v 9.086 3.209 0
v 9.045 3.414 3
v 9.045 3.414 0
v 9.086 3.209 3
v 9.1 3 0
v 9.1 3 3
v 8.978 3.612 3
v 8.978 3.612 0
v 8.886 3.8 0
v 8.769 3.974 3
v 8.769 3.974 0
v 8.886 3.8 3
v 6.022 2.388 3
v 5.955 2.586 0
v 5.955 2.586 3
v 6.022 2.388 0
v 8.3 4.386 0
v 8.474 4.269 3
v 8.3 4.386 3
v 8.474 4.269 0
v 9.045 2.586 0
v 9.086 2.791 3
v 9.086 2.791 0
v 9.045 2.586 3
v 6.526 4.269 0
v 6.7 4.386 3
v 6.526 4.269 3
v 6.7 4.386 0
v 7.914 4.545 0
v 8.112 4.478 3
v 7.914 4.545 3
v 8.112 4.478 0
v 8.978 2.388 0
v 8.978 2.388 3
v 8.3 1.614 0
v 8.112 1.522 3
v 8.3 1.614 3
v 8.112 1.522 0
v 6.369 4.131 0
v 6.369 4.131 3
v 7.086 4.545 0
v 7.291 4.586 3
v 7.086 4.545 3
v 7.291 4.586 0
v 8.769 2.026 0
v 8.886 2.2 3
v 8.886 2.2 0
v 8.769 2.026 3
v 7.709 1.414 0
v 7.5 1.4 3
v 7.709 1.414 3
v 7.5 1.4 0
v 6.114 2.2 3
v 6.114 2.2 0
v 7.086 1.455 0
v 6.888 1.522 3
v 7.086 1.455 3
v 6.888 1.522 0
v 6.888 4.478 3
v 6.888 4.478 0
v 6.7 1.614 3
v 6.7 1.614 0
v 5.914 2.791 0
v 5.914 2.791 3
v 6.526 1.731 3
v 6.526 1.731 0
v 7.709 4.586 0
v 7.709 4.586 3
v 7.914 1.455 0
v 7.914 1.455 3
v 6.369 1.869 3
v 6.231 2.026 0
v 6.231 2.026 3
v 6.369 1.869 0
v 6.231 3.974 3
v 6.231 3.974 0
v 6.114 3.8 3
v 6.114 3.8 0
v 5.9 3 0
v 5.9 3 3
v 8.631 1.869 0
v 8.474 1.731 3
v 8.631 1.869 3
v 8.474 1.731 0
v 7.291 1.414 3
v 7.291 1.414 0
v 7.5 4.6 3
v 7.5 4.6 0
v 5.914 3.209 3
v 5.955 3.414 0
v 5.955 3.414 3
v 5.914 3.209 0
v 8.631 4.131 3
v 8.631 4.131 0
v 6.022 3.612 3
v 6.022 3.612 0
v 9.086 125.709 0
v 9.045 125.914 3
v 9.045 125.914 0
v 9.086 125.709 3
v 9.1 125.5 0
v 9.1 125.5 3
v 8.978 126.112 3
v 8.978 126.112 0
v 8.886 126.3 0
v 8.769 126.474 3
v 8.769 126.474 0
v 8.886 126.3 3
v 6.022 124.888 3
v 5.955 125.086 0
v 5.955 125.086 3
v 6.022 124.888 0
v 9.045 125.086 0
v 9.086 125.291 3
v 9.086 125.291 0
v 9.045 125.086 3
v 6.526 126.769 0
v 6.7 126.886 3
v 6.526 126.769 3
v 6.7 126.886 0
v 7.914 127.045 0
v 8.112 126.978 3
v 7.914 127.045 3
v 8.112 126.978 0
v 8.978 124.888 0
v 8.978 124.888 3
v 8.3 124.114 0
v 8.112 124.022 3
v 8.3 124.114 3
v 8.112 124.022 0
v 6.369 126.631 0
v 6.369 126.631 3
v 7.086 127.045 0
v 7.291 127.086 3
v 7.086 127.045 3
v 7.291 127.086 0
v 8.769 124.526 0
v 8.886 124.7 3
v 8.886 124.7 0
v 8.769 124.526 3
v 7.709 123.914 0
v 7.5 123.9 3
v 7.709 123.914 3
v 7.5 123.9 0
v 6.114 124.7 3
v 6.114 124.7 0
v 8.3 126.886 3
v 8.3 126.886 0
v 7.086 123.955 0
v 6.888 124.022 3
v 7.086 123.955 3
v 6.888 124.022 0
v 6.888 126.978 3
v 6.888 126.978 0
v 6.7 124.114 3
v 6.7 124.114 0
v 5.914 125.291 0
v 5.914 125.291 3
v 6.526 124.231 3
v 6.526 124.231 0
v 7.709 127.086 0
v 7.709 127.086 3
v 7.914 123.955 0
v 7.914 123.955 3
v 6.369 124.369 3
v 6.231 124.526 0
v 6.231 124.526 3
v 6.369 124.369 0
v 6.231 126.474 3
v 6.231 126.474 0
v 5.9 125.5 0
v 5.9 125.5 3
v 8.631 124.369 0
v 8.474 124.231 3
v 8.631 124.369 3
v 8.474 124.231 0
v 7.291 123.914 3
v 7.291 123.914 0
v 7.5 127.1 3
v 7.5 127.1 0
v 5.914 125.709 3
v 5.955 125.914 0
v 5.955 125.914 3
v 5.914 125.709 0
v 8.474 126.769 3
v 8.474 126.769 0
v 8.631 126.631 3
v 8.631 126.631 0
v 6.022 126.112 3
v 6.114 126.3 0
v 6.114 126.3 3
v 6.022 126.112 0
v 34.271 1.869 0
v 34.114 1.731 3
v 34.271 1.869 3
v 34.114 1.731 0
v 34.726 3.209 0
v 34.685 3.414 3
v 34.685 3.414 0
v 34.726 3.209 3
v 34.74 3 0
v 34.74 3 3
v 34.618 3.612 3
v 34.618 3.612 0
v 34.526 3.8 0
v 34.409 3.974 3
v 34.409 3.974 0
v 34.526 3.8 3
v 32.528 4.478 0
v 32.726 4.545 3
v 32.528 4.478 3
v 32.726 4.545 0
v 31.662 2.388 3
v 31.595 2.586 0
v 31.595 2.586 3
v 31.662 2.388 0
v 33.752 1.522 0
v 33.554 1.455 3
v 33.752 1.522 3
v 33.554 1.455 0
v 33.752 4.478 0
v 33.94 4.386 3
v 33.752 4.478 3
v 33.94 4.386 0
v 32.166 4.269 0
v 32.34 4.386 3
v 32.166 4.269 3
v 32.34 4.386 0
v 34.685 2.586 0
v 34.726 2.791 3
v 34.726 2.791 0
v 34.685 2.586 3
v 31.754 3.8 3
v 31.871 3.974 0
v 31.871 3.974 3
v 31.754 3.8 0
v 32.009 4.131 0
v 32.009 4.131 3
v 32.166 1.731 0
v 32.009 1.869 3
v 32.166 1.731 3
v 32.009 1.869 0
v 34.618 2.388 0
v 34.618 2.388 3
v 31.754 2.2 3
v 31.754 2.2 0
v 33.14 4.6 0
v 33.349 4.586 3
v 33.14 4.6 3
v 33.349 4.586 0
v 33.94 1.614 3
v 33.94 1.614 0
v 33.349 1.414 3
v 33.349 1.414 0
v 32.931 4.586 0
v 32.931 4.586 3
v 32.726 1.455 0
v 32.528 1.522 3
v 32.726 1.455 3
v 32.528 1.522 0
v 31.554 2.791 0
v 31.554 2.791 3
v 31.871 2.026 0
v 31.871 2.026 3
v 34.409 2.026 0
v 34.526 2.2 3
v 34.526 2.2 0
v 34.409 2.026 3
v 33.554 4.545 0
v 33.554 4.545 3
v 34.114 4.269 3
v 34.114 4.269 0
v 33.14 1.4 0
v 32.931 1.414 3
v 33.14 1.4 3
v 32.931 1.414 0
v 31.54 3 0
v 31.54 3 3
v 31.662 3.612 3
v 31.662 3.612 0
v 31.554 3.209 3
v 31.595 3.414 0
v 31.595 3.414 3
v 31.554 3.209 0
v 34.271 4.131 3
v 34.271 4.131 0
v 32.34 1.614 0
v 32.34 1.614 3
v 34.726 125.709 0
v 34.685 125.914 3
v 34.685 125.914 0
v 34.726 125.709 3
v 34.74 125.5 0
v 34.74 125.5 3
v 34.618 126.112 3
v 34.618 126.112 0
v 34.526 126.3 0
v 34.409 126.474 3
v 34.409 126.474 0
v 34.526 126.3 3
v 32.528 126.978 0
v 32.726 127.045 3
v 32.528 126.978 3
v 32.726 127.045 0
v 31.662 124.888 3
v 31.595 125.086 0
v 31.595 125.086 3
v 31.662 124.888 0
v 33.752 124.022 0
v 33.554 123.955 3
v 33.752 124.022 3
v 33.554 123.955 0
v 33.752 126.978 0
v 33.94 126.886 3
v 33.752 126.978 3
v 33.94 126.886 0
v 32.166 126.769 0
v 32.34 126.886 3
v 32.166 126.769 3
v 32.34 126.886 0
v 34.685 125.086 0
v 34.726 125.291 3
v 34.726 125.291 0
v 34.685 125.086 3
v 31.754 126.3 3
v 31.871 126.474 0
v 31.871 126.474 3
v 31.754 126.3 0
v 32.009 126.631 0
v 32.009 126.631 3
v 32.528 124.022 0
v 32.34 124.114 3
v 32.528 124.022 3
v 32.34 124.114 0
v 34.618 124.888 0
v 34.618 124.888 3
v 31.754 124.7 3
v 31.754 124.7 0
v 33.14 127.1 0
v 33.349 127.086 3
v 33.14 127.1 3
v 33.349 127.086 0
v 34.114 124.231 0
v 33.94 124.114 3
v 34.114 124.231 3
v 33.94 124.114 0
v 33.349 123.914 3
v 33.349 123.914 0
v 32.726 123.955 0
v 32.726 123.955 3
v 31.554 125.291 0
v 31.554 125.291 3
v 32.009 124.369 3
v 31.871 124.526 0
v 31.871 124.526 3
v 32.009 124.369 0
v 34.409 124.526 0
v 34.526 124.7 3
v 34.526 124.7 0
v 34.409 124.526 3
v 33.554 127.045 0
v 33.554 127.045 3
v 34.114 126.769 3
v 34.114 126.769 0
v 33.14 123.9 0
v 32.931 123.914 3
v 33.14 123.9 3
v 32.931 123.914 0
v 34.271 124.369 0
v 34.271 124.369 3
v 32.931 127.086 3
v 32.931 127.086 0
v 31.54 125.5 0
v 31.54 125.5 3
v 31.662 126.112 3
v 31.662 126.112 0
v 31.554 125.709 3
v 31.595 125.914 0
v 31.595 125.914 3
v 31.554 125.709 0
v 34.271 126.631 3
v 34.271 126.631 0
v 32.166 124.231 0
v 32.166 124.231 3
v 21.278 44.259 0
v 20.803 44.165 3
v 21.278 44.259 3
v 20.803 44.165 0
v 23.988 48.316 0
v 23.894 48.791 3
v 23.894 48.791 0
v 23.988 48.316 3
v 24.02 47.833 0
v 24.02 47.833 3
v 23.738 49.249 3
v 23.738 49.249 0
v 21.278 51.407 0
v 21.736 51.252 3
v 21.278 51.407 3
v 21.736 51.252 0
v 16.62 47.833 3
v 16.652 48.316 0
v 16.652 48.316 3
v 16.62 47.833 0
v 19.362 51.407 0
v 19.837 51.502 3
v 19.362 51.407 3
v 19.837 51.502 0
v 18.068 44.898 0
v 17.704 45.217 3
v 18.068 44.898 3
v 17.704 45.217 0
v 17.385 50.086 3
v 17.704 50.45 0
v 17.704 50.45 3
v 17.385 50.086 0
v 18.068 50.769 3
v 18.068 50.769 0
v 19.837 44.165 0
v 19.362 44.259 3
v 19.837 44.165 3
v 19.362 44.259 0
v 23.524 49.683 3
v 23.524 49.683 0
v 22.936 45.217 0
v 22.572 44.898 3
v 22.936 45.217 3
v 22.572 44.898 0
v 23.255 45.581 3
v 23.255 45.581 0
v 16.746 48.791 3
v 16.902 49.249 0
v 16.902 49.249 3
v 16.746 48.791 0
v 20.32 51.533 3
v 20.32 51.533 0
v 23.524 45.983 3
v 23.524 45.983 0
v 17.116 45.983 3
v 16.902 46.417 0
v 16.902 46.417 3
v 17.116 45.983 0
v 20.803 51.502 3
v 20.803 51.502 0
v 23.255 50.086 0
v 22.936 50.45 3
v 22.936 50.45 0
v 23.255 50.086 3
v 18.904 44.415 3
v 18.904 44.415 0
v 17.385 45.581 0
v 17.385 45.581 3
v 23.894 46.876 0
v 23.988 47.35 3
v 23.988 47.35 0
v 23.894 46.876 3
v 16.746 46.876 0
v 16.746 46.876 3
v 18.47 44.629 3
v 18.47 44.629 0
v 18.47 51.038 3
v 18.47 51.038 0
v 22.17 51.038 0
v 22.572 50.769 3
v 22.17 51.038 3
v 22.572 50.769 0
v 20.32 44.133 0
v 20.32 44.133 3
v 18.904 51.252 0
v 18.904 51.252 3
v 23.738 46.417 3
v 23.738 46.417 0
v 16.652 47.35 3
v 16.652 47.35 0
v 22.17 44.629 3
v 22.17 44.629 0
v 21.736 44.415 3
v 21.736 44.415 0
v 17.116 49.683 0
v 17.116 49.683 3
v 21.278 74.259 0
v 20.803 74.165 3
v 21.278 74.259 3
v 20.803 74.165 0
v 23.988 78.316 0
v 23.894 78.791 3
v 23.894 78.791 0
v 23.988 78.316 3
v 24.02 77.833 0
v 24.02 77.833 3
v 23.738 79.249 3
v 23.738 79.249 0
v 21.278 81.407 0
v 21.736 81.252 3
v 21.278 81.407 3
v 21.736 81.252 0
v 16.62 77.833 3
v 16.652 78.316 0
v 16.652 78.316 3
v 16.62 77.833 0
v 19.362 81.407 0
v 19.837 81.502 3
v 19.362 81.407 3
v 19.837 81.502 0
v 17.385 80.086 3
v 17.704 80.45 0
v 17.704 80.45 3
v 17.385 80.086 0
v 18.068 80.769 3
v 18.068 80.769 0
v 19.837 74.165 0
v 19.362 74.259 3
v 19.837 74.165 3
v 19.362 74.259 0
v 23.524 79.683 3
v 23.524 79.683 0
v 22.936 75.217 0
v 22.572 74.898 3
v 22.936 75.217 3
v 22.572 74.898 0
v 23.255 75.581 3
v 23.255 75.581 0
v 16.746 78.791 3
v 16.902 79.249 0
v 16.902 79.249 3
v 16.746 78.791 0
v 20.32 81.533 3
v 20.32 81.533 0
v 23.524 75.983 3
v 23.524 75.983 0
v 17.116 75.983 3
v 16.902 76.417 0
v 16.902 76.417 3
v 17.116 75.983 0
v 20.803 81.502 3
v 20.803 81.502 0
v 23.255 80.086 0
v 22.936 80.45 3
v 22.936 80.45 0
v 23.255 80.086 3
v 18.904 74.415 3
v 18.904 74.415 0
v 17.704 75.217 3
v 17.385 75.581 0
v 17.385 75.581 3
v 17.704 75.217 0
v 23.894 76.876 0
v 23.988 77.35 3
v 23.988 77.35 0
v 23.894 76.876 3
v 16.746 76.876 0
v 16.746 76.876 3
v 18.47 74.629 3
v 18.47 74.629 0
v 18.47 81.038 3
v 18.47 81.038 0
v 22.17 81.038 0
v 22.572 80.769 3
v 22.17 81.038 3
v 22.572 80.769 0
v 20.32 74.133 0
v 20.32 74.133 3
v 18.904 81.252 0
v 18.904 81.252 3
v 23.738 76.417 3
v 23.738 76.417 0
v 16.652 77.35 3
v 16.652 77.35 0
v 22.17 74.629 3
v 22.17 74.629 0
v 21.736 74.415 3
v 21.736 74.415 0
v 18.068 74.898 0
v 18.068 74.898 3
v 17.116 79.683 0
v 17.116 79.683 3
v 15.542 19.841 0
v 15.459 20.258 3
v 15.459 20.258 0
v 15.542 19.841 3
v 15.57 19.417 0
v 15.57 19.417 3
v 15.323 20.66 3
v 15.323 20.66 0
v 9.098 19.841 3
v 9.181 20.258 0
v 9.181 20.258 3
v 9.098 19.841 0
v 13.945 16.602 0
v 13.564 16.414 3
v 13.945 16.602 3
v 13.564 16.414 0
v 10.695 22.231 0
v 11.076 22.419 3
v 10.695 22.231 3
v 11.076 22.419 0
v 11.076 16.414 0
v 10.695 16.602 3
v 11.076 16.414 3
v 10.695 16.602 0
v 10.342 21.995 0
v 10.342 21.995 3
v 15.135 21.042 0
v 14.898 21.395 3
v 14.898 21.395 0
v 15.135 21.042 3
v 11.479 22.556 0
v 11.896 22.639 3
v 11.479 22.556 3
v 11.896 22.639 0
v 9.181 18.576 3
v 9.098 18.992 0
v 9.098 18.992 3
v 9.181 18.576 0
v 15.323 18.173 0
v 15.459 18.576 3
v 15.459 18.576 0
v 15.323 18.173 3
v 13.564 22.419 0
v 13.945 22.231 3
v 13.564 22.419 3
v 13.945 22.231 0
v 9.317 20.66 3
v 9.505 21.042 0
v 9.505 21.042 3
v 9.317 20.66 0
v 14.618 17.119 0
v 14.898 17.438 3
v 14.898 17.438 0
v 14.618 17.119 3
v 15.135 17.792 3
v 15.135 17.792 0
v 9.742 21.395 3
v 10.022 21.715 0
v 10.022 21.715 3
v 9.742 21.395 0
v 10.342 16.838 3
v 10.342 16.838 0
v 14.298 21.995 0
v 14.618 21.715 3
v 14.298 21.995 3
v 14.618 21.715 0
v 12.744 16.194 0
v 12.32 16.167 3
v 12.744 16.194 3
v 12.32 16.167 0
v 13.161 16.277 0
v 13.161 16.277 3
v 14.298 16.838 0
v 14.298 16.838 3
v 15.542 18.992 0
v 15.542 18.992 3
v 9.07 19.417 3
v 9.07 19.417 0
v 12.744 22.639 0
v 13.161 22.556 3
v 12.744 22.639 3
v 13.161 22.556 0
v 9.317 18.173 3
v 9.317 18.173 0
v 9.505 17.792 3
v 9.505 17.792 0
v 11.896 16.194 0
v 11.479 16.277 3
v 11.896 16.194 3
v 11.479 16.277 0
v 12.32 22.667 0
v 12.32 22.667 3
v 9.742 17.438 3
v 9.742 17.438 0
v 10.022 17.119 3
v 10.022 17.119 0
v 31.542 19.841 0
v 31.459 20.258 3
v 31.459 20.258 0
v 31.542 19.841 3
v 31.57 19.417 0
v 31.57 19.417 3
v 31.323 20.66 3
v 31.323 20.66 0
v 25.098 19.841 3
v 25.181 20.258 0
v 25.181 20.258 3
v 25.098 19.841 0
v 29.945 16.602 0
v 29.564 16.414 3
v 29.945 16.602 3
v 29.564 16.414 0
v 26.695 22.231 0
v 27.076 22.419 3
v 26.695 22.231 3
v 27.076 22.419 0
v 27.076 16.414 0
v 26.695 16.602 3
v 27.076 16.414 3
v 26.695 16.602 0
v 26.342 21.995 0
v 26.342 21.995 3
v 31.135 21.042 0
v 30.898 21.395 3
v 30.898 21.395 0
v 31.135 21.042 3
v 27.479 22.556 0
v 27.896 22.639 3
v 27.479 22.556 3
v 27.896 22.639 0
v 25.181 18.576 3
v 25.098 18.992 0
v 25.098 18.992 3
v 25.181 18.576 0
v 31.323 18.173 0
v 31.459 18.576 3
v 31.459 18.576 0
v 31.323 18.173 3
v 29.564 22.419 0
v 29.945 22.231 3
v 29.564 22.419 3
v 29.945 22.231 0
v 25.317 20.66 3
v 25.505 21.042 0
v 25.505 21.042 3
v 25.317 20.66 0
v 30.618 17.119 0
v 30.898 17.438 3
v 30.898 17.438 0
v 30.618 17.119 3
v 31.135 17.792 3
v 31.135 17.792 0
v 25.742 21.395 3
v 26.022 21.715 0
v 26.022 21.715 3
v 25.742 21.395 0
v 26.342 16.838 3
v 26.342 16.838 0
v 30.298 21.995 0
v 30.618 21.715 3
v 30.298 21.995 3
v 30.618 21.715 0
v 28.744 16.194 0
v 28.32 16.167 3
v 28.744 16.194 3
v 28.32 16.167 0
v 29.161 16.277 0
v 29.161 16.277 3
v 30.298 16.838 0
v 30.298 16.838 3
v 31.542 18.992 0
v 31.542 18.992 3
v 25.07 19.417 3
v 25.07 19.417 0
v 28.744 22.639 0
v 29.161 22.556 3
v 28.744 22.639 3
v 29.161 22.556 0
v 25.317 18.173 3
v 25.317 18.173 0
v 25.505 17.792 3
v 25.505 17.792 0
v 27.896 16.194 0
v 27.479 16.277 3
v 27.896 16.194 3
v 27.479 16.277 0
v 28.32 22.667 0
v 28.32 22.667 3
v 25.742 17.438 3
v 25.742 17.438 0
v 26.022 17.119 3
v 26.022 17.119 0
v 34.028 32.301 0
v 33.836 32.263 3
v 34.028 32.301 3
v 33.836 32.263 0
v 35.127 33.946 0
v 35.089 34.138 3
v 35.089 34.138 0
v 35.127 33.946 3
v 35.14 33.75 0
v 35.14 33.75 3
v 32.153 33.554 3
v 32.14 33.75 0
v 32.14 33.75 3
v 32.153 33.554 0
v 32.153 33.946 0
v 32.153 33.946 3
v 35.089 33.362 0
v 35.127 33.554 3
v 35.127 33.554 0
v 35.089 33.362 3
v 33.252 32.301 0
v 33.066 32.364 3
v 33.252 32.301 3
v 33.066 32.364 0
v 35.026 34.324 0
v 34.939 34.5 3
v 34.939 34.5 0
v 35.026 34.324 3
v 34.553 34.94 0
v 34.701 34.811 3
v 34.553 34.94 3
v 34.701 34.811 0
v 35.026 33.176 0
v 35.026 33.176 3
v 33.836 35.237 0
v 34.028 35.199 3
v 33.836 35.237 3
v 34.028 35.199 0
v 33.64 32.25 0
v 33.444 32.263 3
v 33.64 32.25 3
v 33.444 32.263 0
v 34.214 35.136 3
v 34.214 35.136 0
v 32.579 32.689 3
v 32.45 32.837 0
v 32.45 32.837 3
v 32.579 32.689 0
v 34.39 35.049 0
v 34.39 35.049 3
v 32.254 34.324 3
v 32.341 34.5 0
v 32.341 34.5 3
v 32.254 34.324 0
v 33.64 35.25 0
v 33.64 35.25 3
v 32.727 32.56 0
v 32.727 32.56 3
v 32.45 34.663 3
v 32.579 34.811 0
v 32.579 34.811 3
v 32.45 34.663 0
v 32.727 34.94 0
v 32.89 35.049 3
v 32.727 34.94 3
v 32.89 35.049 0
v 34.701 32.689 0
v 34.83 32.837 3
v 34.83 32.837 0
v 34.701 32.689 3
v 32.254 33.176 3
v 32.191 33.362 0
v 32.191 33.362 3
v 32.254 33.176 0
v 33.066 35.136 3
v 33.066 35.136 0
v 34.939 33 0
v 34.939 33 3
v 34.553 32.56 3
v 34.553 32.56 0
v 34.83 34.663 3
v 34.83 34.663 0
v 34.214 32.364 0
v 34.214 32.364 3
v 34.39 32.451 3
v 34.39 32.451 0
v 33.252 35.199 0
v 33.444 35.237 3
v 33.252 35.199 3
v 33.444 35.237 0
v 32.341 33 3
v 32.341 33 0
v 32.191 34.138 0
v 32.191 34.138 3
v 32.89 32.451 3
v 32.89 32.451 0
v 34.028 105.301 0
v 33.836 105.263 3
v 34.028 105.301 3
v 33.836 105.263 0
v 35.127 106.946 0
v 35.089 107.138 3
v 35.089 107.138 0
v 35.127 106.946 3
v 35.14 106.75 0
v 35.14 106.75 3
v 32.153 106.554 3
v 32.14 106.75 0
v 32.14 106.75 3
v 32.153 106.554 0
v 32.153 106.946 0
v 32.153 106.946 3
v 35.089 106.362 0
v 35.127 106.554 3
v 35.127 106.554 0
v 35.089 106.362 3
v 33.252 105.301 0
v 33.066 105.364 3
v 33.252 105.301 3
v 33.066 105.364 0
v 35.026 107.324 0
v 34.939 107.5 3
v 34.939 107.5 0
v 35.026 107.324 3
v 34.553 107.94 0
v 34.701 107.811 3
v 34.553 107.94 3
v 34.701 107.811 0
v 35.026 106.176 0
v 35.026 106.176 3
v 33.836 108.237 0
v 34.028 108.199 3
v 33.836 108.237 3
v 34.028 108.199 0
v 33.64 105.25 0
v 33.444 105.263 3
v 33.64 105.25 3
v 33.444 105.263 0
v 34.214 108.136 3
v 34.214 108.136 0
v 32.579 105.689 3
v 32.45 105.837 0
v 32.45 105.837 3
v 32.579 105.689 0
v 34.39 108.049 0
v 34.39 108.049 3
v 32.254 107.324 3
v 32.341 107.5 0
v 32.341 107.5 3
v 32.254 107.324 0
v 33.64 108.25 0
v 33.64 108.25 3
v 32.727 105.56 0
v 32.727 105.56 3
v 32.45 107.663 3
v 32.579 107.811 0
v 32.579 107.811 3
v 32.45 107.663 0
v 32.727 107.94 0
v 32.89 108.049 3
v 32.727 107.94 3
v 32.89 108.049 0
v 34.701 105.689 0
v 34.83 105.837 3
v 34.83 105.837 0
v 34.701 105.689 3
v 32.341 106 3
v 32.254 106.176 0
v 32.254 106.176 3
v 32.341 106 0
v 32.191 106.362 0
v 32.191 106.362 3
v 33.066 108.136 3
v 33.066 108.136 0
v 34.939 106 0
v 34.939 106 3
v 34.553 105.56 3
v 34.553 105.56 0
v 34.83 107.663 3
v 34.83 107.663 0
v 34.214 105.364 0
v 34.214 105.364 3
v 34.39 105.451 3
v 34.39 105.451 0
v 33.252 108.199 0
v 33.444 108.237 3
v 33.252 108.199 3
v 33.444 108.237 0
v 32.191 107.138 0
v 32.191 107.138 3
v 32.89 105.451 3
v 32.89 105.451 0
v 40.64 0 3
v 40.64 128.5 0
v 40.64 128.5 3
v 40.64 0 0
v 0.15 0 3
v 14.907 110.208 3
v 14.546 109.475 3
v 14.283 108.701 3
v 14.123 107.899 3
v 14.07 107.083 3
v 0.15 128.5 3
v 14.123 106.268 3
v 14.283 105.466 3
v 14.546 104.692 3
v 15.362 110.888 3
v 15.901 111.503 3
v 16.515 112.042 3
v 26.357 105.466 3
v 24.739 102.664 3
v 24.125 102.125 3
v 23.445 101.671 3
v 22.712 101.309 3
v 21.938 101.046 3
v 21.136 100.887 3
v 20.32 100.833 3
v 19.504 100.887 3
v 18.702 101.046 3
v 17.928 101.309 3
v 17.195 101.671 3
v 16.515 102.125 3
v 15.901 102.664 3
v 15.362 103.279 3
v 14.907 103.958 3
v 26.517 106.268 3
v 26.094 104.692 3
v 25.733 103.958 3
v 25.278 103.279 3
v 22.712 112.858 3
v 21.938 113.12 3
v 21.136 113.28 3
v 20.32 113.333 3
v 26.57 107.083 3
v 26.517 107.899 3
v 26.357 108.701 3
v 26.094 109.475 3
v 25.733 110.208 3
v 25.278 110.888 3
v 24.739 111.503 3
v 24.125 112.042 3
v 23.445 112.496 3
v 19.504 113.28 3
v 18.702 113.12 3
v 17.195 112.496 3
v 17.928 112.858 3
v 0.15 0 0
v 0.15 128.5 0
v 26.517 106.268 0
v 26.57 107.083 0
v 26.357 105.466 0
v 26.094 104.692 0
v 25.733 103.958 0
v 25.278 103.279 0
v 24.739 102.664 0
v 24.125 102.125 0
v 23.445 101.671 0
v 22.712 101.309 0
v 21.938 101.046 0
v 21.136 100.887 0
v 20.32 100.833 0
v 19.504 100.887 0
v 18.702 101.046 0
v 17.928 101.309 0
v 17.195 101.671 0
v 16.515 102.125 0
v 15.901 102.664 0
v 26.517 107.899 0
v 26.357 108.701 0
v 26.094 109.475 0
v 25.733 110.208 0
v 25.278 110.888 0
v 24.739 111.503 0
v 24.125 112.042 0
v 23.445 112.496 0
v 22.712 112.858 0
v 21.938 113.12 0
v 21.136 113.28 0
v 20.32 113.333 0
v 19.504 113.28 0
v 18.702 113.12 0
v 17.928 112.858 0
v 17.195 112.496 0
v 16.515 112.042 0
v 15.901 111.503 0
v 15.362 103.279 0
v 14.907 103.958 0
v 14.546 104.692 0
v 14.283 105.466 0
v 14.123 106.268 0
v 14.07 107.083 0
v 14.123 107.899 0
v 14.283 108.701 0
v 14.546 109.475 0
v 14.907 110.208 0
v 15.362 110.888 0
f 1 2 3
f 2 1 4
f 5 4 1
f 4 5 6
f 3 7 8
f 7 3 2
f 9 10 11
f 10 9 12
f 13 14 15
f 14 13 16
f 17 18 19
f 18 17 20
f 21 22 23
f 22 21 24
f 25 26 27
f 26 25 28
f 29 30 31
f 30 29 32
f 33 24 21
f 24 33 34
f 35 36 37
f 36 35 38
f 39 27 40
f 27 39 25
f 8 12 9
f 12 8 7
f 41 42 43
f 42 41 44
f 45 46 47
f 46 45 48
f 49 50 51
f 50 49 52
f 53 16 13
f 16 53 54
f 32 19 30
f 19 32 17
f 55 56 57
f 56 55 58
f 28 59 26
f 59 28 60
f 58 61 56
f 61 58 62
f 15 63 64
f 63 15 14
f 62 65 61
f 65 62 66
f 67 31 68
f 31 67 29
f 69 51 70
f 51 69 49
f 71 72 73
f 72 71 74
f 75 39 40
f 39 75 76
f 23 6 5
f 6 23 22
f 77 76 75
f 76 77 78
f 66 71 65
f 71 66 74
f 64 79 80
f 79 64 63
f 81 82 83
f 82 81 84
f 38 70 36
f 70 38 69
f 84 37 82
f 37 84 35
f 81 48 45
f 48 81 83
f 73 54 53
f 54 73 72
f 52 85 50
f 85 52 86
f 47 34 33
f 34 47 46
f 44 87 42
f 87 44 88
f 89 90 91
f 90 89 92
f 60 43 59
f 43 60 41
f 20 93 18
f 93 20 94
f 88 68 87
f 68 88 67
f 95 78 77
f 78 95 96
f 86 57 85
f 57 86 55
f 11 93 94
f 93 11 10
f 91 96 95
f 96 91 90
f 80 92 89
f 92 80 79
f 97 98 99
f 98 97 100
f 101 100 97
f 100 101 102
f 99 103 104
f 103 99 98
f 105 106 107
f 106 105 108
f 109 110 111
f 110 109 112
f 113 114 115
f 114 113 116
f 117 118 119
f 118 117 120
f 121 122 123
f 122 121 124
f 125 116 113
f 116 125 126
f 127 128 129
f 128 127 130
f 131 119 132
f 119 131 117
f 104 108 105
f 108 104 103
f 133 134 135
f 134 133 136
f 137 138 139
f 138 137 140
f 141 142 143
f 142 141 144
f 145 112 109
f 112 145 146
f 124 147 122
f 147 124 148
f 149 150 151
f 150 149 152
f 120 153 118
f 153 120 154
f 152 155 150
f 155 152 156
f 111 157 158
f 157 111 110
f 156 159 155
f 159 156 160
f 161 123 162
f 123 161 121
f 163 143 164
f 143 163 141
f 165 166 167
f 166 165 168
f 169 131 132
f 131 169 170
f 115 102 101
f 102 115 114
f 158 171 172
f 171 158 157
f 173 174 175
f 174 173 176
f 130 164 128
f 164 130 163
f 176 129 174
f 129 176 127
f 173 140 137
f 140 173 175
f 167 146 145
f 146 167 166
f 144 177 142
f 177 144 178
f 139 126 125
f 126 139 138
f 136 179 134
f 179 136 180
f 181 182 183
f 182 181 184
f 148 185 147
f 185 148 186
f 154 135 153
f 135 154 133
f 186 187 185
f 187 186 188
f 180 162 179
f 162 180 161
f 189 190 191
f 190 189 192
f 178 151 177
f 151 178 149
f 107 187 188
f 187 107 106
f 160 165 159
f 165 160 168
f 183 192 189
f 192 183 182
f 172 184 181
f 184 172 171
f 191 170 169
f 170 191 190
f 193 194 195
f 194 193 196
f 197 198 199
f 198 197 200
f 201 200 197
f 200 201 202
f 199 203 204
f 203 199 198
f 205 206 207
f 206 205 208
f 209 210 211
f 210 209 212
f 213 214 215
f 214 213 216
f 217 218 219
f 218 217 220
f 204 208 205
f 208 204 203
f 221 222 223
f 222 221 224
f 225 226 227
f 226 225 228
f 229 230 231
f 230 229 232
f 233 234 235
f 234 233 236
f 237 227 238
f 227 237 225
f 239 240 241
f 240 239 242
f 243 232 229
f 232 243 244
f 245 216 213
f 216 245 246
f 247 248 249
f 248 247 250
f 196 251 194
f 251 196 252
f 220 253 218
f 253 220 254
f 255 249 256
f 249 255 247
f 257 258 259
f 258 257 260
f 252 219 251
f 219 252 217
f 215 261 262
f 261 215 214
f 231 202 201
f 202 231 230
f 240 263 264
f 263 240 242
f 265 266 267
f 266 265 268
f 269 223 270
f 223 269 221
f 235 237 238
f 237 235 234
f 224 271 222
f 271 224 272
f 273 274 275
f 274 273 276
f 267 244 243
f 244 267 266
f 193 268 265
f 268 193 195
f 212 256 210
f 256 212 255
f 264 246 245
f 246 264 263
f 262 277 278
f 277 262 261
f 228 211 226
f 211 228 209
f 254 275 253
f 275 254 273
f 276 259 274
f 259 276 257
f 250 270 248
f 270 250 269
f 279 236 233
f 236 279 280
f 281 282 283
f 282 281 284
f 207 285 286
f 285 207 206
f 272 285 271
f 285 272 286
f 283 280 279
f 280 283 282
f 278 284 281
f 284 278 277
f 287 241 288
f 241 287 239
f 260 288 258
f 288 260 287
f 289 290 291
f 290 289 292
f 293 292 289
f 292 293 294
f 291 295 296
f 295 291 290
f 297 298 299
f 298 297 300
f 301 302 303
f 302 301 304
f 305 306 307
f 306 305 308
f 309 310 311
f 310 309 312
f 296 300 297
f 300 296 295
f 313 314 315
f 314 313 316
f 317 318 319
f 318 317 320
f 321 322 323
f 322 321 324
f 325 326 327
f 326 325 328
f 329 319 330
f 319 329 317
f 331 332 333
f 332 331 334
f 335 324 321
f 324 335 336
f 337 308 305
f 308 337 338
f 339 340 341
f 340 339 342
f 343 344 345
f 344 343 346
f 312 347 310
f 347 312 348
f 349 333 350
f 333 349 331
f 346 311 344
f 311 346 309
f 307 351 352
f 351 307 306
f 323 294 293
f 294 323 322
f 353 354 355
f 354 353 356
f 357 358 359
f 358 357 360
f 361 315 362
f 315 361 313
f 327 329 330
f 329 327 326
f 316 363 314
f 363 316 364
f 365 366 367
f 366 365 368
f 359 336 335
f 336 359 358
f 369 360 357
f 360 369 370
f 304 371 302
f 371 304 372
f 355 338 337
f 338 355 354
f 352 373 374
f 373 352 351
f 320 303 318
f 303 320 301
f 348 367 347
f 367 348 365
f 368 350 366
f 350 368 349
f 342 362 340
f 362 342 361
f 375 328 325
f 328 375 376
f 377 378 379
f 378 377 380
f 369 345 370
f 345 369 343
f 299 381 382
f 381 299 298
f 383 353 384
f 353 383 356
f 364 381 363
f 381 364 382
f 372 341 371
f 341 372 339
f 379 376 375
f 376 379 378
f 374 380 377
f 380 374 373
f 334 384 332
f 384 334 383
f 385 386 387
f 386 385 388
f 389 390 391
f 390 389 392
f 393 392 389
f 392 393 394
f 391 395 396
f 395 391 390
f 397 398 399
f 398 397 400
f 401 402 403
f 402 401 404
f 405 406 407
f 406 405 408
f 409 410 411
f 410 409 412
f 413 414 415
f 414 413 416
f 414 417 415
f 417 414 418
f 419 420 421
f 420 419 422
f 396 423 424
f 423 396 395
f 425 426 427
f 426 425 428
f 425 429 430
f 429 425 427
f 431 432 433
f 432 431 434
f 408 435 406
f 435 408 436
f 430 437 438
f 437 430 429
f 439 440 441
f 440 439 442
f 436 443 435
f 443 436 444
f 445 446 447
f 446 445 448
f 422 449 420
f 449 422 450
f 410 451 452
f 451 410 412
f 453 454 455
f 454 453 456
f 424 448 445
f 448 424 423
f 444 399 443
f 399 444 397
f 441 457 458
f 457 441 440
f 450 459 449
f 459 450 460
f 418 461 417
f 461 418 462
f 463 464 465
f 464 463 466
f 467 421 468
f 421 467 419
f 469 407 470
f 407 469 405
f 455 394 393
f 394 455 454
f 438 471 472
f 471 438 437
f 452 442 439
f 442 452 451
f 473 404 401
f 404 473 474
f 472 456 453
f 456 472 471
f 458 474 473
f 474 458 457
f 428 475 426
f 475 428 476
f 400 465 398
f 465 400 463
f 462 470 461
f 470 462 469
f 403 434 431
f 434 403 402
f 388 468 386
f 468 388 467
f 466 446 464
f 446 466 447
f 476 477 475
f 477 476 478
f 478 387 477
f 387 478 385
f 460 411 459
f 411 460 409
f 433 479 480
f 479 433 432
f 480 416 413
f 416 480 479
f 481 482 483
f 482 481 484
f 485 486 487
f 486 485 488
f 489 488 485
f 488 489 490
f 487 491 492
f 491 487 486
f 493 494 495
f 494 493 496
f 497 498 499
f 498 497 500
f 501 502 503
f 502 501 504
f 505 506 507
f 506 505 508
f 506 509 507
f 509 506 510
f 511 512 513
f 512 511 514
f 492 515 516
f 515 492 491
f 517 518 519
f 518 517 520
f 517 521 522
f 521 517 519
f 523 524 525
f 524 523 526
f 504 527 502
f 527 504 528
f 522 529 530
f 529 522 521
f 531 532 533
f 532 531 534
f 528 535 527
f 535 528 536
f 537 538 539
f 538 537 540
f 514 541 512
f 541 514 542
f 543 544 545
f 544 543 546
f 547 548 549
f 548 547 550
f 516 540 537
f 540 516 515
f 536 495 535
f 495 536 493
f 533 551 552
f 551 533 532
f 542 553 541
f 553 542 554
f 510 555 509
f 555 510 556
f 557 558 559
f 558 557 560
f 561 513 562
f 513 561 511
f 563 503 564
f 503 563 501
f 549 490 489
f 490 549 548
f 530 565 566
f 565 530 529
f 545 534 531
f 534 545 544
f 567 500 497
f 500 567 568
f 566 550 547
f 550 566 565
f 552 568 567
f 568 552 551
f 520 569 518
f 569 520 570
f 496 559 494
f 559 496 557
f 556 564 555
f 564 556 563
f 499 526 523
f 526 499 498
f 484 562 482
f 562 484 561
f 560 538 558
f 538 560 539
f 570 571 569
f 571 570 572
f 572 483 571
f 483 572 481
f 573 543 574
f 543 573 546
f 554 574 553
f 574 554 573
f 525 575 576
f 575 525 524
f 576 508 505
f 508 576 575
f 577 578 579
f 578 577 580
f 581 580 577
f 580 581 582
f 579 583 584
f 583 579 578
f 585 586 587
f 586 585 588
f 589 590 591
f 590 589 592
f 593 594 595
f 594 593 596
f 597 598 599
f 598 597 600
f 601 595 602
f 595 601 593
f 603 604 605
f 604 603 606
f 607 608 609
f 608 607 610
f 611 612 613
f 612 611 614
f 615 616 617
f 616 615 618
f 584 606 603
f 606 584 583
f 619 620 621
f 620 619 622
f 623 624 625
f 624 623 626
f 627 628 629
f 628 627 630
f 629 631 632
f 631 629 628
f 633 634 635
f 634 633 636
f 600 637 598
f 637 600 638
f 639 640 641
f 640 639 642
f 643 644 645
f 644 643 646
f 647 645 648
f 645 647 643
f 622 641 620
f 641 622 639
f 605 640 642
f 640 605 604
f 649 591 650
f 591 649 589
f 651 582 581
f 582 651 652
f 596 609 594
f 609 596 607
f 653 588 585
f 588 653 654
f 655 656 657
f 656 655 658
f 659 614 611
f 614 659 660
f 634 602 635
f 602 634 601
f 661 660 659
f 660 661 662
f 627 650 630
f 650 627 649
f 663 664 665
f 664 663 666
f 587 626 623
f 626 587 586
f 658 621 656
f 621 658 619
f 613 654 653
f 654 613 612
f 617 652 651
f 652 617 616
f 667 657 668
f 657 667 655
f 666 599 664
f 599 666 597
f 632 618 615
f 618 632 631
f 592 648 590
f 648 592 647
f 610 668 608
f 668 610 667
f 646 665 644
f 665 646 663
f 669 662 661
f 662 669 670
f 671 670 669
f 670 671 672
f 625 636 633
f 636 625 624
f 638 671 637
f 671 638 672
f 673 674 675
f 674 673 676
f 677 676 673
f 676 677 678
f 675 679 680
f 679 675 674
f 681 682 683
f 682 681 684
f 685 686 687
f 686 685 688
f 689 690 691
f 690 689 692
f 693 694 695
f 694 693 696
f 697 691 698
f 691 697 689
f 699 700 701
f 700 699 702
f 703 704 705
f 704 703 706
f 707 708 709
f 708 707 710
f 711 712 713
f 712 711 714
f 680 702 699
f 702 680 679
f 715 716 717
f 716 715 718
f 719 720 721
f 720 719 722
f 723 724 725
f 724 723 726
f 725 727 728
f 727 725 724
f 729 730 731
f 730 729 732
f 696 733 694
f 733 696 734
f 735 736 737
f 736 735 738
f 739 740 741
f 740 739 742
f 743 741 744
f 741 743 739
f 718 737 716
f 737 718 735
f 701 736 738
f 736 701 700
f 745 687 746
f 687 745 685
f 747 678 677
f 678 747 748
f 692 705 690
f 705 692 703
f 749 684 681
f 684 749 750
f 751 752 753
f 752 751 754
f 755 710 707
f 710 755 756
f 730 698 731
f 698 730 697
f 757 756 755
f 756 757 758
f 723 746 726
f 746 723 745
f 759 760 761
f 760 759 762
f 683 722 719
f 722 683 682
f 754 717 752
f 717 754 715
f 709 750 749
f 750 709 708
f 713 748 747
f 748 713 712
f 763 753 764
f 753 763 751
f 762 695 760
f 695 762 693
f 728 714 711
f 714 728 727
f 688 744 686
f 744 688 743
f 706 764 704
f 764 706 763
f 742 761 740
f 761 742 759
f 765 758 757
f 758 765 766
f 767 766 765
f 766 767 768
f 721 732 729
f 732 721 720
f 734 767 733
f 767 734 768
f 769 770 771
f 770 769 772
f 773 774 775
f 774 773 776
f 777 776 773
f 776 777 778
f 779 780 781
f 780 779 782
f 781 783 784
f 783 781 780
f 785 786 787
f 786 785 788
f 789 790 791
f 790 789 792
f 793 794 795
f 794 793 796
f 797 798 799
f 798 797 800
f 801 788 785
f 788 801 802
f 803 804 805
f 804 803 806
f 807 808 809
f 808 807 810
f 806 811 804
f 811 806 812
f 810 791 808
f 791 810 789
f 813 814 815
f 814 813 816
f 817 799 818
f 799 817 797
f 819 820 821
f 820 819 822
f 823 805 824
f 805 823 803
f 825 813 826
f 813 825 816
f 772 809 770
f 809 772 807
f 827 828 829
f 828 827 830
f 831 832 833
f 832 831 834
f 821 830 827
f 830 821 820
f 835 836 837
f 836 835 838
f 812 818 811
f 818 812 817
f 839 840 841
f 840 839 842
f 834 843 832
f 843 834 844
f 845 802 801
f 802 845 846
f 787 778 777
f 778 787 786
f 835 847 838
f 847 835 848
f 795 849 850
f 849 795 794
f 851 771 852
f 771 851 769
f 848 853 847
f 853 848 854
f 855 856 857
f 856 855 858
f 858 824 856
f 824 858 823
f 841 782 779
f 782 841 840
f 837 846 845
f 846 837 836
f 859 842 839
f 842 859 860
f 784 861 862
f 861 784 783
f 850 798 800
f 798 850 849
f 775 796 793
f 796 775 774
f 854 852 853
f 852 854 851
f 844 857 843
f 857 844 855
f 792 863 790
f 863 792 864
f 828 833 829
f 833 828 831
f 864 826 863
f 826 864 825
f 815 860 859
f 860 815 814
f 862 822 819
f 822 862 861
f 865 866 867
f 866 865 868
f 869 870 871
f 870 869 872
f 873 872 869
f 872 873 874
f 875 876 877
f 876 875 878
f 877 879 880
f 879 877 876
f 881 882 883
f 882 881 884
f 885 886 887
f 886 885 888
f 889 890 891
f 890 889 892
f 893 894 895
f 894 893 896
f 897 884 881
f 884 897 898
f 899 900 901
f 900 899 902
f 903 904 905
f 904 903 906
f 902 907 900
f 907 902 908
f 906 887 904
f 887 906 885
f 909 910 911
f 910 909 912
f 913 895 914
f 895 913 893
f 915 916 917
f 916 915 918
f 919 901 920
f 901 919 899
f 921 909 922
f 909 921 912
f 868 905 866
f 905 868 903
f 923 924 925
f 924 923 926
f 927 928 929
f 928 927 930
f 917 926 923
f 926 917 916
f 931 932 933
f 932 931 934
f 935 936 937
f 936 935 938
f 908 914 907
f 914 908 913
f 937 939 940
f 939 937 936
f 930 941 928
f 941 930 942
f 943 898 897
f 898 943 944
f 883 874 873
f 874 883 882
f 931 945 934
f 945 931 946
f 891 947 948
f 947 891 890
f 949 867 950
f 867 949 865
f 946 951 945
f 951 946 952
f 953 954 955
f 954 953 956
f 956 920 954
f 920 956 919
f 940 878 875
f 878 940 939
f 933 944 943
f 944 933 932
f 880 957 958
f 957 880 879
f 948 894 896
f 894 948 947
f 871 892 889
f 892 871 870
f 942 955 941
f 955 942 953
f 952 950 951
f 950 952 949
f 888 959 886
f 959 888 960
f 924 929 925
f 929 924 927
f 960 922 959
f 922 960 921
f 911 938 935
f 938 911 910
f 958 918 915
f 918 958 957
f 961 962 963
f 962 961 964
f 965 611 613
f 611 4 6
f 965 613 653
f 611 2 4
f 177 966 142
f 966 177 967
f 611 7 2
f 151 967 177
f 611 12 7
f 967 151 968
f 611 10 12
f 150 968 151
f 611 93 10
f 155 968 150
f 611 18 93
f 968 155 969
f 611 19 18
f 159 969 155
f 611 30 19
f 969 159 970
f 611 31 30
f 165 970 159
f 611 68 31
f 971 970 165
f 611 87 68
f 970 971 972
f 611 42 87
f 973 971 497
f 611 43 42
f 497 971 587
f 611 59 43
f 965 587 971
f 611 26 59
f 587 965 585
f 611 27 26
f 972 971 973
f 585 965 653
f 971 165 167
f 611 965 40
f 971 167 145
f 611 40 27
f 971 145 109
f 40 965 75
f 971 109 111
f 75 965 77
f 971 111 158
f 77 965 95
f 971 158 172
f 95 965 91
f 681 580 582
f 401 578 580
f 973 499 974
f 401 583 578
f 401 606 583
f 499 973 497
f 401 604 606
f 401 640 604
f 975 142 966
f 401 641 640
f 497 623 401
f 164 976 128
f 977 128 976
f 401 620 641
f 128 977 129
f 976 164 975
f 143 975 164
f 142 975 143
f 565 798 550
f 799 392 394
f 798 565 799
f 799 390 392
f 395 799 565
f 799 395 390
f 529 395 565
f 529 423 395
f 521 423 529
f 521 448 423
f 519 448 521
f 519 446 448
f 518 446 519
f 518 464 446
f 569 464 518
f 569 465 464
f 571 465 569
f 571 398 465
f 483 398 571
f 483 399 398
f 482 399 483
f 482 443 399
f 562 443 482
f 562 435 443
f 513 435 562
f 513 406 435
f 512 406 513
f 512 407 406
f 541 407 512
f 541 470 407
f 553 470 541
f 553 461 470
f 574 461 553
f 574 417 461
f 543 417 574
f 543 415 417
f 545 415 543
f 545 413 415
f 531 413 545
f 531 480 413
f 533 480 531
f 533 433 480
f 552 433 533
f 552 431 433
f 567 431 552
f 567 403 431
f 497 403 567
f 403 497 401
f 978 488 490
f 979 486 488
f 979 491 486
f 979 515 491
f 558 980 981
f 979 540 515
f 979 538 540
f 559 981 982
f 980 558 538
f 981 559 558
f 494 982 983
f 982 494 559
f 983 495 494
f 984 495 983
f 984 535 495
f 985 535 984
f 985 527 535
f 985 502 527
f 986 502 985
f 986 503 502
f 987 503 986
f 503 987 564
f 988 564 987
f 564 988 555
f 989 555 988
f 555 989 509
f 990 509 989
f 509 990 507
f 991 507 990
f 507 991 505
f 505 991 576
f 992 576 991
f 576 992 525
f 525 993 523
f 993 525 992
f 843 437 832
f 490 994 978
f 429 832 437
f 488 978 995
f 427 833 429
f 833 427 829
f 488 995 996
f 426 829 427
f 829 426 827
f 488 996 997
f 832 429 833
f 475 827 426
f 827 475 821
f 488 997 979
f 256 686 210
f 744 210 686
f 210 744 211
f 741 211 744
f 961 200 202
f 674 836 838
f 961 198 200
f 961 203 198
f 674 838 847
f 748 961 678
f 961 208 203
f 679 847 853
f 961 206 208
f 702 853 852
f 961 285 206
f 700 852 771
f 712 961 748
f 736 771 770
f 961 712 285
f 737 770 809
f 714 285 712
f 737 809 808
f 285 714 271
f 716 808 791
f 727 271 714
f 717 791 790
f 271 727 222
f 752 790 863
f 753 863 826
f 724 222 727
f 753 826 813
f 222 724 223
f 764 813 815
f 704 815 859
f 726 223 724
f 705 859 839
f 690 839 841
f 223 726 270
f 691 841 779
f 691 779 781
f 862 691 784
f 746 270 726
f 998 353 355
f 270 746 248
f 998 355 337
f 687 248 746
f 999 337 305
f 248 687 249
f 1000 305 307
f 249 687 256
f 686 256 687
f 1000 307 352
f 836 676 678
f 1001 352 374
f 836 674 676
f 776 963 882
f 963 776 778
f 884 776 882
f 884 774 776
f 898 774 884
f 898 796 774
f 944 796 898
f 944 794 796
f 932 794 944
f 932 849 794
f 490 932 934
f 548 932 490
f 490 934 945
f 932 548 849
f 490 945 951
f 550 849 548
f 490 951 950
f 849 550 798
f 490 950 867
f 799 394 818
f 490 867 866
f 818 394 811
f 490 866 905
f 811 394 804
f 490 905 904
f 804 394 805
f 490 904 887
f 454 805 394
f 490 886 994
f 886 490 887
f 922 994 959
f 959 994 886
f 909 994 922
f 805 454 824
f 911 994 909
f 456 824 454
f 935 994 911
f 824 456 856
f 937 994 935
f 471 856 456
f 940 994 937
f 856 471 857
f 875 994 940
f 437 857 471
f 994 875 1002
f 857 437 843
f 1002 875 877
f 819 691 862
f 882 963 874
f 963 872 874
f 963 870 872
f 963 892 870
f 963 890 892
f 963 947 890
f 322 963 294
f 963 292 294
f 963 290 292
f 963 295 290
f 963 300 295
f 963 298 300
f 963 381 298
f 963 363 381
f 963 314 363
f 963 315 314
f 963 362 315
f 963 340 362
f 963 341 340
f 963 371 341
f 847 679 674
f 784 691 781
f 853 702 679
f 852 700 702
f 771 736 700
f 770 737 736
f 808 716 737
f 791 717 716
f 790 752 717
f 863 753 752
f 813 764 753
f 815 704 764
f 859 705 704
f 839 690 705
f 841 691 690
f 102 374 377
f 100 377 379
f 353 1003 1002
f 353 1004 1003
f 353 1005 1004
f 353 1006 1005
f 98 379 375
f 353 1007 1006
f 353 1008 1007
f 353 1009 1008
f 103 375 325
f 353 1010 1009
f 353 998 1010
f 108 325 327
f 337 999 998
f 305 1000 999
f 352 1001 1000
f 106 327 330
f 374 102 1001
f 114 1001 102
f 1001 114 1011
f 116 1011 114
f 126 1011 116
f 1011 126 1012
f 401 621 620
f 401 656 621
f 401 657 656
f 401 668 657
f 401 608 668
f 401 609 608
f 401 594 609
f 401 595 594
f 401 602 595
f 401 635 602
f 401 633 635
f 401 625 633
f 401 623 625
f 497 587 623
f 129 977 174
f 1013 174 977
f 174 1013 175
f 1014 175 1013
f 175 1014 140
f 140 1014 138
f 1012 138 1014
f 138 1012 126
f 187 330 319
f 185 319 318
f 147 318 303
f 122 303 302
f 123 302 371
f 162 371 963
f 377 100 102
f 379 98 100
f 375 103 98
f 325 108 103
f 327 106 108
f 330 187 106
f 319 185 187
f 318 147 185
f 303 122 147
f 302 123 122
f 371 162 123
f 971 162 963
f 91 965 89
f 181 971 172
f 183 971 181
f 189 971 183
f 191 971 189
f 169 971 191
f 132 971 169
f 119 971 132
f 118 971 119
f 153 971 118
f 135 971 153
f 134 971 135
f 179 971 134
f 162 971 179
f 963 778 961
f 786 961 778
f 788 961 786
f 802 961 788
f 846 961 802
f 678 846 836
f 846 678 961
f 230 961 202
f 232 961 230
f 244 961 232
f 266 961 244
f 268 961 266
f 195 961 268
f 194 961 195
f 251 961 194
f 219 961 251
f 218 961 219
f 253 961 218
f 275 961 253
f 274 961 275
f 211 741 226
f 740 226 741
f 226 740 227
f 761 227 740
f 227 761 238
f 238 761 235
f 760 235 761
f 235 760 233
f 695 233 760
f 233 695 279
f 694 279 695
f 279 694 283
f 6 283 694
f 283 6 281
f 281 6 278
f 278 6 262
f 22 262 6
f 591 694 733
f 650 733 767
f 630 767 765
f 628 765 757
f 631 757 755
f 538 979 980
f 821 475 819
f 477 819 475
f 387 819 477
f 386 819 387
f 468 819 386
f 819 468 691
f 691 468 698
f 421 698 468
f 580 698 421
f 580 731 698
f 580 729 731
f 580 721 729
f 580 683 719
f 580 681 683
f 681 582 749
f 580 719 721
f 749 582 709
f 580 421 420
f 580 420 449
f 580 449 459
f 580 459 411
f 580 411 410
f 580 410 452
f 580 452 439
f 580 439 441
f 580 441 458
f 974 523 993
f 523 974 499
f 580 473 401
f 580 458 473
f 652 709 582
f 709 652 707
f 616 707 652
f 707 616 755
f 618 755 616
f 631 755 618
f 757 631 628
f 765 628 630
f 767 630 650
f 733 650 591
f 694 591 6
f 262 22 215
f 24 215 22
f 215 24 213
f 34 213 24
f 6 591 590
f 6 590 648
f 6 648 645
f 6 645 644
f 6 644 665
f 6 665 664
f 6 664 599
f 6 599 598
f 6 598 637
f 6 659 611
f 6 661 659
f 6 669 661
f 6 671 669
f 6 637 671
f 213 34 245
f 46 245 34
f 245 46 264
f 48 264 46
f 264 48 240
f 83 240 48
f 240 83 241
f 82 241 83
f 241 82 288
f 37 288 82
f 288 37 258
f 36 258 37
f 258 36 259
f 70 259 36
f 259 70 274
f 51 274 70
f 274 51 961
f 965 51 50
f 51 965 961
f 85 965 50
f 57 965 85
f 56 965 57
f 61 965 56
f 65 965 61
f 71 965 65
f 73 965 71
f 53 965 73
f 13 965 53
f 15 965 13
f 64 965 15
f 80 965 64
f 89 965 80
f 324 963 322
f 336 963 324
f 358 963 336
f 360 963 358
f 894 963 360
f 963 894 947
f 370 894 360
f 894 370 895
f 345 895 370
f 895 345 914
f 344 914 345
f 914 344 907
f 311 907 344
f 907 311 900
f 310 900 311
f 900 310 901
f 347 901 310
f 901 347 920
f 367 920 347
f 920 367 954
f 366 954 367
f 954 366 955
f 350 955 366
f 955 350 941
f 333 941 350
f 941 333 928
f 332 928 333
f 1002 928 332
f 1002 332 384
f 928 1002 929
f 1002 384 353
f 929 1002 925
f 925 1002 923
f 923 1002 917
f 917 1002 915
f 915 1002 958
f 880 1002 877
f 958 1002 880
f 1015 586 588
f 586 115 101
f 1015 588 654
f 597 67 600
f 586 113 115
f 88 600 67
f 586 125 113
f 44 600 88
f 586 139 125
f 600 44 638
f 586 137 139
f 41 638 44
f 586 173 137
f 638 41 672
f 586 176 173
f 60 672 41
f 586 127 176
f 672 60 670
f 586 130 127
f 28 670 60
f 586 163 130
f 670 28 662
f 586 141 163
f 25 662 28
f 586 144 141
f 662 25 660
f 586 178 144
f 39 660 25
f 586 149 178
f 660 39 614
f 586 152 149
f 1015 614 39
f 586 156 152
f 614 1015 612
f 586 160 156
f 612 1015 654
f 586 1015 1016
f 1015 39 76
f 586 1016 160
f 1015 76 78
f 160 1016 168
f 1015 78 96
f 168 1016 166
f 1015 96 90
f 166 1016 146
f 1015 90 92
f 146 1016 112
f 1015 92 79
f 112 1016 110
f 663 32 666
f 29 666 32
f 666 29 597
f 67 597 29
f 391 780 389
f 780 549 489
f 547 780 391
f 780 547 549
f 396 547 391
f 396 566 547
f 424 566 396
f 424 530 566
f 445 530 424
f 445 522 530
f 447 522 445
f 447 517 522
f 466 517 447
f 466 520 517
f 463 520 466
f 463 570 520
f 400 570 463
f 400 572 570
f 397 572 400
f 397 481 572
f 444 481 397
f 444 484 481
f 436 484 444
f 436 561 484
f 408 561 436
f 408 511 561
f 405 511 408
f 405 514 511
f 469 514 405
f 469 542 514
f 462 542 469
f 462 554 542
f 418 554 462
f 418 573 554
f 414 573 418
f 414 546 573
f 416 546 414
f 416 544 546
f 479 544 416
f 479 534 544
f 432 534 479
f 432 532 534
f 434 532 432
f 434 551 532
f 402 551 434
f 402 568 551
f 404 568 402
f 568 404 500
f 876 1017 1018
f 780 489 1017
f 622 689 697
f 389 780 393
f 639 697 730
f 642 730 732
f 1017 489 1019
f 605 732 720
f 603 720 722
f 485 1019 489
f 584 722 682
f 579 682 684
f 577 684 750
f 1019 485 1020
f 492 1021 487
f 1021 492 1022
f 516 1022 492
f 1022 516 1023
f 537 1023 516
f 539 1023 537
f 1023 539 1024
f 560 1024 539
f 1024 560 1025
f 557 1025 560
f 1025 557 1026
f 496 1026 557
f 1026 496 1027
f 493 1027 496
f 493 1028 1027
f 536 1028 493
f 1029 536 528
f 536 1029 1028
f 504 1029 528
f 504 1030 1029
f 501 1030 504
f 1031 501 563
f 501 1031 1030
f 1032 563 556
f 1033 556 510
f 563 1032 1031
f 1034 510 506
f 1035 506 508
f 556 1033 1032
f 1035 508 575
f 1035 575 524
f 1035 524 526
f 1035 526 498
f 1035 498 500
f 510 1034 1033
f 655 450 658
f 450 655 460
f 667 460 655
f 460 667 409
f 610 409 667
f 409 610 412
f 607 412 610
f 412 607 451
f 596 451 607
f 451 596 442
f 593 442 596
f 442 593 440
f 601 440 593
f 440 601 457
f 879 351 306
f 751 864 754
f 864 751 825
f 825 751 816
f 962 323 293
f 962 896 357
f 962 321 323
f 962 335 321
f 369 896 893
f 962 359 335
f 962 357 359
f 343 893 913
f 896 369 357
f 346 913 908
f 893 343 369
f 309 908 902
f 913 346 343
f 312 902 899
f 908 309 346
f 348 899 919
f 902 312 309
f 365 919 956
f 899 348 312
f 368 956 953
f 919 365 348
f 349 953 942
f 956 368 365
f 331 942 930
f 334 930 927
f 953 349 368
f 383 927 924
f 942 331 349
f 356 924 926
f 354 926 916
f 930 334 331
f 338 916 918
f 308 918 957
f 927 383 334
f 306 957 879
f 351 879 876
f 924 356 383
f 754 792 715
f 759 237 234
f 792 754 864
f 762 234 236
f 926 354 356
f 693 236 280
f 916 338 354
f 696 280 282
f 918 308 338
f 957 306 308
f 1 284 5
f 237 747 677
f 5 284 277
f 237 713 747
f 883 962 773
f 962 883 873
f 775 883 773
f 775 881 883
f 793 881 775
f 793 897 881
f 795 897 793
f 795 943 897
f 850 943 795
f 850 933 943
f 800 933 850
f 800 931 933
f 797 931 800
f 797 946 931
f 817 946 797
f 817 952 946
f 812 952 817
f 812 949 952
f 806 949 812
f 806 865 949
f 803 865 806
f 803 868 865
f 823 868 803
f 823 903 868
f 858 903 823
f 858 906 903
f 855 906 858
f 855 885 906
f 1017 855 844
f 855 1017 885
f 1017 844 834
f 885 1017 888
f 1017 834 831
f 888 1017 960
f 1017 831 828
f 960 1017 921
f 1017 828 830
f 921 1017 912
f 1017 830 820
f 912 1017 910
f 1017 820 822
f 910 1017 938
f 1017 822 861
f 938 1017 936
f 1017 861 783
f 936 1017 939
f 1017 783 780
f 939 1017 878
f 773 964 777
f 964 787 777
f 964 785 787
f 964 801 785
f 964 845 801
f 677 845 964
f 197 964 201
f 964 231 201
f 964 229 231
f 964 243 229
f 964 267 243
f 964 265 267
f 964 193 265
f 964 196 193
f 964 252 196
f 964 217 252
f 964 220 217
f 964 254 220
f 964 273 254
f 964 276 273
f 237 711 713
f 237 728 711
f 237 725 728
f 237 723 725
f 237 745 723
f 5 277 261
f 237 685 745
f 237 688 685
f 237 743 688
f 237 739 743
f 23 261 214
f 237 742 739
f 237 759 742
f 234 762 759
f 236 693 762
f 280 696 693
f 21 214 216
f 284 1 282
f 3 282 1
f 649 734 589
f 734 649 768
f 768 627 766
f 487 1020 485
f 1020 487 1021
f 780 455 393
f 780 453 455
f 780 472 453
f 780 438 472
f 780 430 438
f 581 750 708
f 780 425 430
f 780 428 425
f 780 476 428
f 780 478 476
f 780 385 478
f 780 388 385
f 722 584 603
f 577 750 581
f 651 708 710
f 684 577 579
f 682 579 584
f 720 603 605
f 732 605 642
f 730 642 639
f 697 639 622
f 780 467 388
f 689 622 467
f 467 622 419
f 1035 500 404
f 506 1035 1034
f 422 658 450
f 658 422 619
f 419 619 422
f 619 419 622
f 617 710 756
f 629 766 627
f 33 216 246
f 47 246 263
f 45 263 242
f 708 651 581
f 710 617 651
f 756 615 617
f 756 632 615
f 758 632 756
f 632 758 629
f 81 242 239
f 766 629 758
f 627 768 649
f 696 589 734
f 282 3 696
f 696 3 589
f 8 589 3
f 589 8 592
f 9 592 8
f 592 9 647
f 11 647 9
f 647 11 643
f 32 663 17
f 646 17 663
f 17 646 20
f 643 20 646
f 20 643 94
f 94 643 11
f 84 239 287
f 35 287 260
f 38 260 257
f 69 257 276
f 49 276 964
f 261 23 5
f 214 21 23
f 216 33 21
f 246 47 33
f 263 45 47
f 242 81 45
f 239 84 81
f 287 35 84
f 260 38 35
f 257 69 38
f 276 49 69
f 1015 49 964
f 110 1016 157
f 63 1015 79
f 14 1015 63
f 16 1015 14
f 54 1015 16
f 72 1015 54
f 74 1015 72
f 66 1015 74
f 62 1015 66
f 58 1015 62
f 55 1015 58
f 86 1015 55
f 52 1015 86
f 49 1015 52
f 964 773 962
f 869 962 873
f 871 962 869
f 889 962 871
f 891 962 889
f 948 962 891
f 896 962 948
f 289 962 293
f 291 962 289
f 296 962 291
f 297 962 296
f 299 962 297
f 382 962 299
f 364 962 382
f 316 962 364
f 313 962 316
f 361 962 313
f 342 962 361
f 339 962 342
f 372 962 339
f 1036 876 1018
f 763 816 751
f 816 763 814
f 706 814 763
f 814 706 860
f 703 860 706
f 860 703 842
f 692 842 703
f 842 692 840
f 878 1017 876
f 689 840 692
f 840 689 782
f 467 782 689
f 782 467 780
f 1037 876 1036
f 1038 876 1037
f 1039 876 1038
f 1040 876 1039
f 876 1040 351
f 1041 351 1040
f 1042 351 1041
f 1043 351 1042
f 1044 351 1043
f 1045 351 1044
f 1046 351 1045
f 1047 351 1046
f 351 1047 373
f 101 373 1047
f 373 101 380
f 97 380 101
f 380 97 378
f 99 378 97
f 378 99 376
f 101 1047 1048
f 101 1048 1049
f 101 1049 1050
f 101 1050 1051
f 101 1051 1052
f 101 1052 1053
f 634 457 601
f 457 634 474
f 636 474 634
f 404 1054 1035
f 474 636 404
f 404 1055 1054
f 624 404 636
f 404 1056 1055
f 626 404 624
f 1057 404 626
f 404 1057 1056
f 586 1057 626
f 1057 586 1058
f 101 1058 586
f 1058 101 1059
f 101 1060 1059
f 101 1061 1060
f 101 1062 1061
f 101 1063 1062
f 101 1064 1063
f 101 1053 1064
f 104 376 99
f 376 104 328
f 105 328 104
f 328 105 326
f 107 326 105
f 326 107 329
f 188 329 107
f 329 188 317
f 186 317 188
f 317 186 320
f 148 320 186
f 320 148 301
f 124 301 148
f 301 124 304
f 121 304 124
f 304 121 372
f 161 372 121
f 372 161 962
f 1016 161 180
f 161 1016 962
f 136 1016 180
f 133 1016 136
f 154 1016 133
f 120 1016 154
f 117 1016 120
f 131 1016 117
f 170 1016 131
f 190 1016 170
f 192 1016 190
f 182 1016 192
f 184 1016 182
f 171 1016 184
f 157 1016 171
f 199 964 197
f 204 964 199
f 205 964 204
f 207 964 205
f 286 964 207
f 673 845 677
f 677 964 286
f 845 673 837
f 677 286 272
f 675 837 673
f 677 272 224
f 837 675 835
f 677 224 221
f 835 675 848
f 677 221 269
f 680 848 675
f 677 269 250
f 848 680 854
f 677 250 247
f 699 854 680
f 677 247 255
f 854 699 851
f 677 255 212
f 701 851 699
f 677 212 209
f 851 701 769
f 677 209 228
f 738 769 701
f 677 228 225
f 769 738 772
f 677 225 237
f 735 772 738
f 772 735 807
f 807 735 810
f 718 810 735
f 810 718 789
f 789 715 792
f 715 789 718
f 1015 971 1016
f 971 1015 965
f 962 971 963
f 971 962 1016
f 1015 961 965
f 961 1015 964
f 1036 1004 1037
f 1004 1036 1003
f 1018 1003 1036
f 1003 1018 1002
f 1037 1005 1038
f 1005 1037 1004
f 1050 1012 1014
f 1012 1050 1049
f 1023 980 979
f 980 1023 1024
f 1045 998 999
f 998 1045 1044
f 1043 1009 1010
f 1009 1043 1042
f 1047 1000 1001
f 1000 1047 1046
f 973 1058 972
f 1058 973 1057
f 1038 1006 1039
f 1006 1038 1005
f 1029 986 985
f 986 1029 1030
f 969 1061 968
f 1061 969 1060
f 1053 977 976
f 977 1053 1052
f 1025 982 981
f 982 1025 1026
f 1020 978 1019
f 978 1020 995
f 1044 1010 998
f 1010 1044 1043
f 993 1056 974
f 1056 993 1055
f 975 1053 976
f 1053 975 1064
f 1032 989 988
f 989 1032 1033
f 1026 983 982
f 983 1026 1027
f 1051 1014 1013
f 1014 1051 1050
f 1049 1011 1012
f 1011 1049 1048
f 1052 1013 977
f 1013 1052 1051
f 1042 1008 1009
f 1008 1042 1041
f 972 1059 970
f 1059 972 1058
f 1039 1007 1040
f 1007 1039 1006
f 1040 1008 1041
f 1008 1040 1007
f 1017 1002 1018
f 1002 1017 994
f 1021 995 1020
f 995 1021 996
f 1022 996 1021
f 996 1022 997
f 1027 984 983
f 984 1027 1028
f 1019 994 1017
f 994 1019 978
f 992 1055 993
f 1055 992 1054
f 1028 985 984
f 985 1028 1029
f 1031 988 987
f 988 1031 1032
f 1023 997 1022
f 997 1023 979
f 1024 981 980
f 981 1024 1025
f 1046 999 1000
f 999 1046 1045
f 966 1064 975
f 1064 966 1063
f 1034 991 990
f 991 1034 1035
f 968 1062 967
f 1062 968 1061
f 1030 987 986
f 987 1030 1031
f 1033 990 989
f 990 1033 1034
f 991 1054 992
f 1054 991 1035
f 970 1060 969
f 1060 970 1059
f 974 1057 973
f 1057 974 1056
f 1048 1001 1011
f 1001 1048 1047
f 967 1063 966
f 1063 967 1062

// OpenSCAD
// 1TE = 5.08mm
TE=5.08;
// Plate Thickness. Default for Aluminium Eurorack Panels is 2mm
THICKNESS=3;
// Width in TE
WIDTH=8*TE;
// Default Euorack module height
HEIGHT=128.5;
// Mounting Hole Offset from the top / bottom edge
MOUNTING_HOLE_OFFSET_Y = 3;
// Mounting Hole offset from the sides
MOUNTING_HOLE_OFFSET_X = 7.5;
MOUNTING_HOLE_RADIUS = 1.6;
// Number of Facets for the Holes. 
// A reasonably high number should be picked or else holes might end up to small
HOLE_FACETS = 48;
FONT_FACETS = 48;

// Parameters for the 3.5mm Jacks
JACK_HOLE_RADIUS = 4.3;
SWITCH_HOLE_RADIUS = 6.25;
POT_RADIUS=3.7;

AUDIO_JACK_HOLE_RADIUS = 3.25;

//PLATE_COLOR=[0.1, 0.1, 0.1];
//TEXT_COLOR=[1.0, 1.0, 1.0];
TEXT_COLOR=[0.1, 0.1, 0.1];
TEXT_HEIGHT=1;
PLATE_COLOR=[1.0, 1.0, 1.0];

FONT_DISTANCE=2;


PCB_HOLE_DISTANCE = [0,55,0];
PCB_HOLE_RADIUS = [1.6];


difference() {
    // The main plate
    translate([0.15,0,0])
    color(PLATE_COLOR)
    cube([WIDTH-0.15, HEIGHT, THICKNESS]);
    // The four mounting holes
    for (x =[MOUNTING_HOLE_OFFSET_X, WIDTH - MOUNTING_HOLE_OFFSET_X]){
        for (y =[MOUNTING_HOLE_OFFSET_Y, HEIGHT - MOUNTING_HOLE_OFFSET_Y]){
            color([1,0,0])
            translate([x, y, -0.1]){
                cylinder(h = THICKNESS+0.2, r=MOUNTING_HOLE_RADIUS, center=false, $fn=HOLE_FACETS); 
            };
        }
    };
    // 2 Potis
    for (dy=[5, 35]){
        // Potis
        translate([WIDTH / 2, HEIGHT*2/6 +dy, -0.1]){
            cylinder(
                h = THICKNESS+0.2, 
                r=POT_RADIUS, 
                center=false, 
                $fn=HOLE_FACETS
            );
        };
    };
    // 2 * 3.5mm Buchsen
    for (dx=[-8, 8]){
        translate([WIDTH / 2 + dx, HEIGHT/6 -2, -0.1]){
            cylinder(
                h = THICKNESS+0.2, 
                r = AUDIO_JACK_HOLE_RADIUS, 
                center=false, 
                $fn=HOLE_FACETS
            );
        };        
    }

    translate([WIDTH / 2, HEIGHT*5/6, -0.1]){
        cylinder(
            h = THICKNESS+0.2, 
            r = SWITCH_HOLE_RADIUS, 
            center=false, 
            $fn=HOLE_FACETS
        );
    };
    for (dx=[-73/2, 73/2]){
    translate([WIDTH -7, HEIGHT/2 +6 + dx, -0.1]){
        cylinder(
            h = THICKNESS+0.2, 
            r = 1.5, 
            center=false, 
            $fn=HOLE_FACETS
        );
    };
};  
};
